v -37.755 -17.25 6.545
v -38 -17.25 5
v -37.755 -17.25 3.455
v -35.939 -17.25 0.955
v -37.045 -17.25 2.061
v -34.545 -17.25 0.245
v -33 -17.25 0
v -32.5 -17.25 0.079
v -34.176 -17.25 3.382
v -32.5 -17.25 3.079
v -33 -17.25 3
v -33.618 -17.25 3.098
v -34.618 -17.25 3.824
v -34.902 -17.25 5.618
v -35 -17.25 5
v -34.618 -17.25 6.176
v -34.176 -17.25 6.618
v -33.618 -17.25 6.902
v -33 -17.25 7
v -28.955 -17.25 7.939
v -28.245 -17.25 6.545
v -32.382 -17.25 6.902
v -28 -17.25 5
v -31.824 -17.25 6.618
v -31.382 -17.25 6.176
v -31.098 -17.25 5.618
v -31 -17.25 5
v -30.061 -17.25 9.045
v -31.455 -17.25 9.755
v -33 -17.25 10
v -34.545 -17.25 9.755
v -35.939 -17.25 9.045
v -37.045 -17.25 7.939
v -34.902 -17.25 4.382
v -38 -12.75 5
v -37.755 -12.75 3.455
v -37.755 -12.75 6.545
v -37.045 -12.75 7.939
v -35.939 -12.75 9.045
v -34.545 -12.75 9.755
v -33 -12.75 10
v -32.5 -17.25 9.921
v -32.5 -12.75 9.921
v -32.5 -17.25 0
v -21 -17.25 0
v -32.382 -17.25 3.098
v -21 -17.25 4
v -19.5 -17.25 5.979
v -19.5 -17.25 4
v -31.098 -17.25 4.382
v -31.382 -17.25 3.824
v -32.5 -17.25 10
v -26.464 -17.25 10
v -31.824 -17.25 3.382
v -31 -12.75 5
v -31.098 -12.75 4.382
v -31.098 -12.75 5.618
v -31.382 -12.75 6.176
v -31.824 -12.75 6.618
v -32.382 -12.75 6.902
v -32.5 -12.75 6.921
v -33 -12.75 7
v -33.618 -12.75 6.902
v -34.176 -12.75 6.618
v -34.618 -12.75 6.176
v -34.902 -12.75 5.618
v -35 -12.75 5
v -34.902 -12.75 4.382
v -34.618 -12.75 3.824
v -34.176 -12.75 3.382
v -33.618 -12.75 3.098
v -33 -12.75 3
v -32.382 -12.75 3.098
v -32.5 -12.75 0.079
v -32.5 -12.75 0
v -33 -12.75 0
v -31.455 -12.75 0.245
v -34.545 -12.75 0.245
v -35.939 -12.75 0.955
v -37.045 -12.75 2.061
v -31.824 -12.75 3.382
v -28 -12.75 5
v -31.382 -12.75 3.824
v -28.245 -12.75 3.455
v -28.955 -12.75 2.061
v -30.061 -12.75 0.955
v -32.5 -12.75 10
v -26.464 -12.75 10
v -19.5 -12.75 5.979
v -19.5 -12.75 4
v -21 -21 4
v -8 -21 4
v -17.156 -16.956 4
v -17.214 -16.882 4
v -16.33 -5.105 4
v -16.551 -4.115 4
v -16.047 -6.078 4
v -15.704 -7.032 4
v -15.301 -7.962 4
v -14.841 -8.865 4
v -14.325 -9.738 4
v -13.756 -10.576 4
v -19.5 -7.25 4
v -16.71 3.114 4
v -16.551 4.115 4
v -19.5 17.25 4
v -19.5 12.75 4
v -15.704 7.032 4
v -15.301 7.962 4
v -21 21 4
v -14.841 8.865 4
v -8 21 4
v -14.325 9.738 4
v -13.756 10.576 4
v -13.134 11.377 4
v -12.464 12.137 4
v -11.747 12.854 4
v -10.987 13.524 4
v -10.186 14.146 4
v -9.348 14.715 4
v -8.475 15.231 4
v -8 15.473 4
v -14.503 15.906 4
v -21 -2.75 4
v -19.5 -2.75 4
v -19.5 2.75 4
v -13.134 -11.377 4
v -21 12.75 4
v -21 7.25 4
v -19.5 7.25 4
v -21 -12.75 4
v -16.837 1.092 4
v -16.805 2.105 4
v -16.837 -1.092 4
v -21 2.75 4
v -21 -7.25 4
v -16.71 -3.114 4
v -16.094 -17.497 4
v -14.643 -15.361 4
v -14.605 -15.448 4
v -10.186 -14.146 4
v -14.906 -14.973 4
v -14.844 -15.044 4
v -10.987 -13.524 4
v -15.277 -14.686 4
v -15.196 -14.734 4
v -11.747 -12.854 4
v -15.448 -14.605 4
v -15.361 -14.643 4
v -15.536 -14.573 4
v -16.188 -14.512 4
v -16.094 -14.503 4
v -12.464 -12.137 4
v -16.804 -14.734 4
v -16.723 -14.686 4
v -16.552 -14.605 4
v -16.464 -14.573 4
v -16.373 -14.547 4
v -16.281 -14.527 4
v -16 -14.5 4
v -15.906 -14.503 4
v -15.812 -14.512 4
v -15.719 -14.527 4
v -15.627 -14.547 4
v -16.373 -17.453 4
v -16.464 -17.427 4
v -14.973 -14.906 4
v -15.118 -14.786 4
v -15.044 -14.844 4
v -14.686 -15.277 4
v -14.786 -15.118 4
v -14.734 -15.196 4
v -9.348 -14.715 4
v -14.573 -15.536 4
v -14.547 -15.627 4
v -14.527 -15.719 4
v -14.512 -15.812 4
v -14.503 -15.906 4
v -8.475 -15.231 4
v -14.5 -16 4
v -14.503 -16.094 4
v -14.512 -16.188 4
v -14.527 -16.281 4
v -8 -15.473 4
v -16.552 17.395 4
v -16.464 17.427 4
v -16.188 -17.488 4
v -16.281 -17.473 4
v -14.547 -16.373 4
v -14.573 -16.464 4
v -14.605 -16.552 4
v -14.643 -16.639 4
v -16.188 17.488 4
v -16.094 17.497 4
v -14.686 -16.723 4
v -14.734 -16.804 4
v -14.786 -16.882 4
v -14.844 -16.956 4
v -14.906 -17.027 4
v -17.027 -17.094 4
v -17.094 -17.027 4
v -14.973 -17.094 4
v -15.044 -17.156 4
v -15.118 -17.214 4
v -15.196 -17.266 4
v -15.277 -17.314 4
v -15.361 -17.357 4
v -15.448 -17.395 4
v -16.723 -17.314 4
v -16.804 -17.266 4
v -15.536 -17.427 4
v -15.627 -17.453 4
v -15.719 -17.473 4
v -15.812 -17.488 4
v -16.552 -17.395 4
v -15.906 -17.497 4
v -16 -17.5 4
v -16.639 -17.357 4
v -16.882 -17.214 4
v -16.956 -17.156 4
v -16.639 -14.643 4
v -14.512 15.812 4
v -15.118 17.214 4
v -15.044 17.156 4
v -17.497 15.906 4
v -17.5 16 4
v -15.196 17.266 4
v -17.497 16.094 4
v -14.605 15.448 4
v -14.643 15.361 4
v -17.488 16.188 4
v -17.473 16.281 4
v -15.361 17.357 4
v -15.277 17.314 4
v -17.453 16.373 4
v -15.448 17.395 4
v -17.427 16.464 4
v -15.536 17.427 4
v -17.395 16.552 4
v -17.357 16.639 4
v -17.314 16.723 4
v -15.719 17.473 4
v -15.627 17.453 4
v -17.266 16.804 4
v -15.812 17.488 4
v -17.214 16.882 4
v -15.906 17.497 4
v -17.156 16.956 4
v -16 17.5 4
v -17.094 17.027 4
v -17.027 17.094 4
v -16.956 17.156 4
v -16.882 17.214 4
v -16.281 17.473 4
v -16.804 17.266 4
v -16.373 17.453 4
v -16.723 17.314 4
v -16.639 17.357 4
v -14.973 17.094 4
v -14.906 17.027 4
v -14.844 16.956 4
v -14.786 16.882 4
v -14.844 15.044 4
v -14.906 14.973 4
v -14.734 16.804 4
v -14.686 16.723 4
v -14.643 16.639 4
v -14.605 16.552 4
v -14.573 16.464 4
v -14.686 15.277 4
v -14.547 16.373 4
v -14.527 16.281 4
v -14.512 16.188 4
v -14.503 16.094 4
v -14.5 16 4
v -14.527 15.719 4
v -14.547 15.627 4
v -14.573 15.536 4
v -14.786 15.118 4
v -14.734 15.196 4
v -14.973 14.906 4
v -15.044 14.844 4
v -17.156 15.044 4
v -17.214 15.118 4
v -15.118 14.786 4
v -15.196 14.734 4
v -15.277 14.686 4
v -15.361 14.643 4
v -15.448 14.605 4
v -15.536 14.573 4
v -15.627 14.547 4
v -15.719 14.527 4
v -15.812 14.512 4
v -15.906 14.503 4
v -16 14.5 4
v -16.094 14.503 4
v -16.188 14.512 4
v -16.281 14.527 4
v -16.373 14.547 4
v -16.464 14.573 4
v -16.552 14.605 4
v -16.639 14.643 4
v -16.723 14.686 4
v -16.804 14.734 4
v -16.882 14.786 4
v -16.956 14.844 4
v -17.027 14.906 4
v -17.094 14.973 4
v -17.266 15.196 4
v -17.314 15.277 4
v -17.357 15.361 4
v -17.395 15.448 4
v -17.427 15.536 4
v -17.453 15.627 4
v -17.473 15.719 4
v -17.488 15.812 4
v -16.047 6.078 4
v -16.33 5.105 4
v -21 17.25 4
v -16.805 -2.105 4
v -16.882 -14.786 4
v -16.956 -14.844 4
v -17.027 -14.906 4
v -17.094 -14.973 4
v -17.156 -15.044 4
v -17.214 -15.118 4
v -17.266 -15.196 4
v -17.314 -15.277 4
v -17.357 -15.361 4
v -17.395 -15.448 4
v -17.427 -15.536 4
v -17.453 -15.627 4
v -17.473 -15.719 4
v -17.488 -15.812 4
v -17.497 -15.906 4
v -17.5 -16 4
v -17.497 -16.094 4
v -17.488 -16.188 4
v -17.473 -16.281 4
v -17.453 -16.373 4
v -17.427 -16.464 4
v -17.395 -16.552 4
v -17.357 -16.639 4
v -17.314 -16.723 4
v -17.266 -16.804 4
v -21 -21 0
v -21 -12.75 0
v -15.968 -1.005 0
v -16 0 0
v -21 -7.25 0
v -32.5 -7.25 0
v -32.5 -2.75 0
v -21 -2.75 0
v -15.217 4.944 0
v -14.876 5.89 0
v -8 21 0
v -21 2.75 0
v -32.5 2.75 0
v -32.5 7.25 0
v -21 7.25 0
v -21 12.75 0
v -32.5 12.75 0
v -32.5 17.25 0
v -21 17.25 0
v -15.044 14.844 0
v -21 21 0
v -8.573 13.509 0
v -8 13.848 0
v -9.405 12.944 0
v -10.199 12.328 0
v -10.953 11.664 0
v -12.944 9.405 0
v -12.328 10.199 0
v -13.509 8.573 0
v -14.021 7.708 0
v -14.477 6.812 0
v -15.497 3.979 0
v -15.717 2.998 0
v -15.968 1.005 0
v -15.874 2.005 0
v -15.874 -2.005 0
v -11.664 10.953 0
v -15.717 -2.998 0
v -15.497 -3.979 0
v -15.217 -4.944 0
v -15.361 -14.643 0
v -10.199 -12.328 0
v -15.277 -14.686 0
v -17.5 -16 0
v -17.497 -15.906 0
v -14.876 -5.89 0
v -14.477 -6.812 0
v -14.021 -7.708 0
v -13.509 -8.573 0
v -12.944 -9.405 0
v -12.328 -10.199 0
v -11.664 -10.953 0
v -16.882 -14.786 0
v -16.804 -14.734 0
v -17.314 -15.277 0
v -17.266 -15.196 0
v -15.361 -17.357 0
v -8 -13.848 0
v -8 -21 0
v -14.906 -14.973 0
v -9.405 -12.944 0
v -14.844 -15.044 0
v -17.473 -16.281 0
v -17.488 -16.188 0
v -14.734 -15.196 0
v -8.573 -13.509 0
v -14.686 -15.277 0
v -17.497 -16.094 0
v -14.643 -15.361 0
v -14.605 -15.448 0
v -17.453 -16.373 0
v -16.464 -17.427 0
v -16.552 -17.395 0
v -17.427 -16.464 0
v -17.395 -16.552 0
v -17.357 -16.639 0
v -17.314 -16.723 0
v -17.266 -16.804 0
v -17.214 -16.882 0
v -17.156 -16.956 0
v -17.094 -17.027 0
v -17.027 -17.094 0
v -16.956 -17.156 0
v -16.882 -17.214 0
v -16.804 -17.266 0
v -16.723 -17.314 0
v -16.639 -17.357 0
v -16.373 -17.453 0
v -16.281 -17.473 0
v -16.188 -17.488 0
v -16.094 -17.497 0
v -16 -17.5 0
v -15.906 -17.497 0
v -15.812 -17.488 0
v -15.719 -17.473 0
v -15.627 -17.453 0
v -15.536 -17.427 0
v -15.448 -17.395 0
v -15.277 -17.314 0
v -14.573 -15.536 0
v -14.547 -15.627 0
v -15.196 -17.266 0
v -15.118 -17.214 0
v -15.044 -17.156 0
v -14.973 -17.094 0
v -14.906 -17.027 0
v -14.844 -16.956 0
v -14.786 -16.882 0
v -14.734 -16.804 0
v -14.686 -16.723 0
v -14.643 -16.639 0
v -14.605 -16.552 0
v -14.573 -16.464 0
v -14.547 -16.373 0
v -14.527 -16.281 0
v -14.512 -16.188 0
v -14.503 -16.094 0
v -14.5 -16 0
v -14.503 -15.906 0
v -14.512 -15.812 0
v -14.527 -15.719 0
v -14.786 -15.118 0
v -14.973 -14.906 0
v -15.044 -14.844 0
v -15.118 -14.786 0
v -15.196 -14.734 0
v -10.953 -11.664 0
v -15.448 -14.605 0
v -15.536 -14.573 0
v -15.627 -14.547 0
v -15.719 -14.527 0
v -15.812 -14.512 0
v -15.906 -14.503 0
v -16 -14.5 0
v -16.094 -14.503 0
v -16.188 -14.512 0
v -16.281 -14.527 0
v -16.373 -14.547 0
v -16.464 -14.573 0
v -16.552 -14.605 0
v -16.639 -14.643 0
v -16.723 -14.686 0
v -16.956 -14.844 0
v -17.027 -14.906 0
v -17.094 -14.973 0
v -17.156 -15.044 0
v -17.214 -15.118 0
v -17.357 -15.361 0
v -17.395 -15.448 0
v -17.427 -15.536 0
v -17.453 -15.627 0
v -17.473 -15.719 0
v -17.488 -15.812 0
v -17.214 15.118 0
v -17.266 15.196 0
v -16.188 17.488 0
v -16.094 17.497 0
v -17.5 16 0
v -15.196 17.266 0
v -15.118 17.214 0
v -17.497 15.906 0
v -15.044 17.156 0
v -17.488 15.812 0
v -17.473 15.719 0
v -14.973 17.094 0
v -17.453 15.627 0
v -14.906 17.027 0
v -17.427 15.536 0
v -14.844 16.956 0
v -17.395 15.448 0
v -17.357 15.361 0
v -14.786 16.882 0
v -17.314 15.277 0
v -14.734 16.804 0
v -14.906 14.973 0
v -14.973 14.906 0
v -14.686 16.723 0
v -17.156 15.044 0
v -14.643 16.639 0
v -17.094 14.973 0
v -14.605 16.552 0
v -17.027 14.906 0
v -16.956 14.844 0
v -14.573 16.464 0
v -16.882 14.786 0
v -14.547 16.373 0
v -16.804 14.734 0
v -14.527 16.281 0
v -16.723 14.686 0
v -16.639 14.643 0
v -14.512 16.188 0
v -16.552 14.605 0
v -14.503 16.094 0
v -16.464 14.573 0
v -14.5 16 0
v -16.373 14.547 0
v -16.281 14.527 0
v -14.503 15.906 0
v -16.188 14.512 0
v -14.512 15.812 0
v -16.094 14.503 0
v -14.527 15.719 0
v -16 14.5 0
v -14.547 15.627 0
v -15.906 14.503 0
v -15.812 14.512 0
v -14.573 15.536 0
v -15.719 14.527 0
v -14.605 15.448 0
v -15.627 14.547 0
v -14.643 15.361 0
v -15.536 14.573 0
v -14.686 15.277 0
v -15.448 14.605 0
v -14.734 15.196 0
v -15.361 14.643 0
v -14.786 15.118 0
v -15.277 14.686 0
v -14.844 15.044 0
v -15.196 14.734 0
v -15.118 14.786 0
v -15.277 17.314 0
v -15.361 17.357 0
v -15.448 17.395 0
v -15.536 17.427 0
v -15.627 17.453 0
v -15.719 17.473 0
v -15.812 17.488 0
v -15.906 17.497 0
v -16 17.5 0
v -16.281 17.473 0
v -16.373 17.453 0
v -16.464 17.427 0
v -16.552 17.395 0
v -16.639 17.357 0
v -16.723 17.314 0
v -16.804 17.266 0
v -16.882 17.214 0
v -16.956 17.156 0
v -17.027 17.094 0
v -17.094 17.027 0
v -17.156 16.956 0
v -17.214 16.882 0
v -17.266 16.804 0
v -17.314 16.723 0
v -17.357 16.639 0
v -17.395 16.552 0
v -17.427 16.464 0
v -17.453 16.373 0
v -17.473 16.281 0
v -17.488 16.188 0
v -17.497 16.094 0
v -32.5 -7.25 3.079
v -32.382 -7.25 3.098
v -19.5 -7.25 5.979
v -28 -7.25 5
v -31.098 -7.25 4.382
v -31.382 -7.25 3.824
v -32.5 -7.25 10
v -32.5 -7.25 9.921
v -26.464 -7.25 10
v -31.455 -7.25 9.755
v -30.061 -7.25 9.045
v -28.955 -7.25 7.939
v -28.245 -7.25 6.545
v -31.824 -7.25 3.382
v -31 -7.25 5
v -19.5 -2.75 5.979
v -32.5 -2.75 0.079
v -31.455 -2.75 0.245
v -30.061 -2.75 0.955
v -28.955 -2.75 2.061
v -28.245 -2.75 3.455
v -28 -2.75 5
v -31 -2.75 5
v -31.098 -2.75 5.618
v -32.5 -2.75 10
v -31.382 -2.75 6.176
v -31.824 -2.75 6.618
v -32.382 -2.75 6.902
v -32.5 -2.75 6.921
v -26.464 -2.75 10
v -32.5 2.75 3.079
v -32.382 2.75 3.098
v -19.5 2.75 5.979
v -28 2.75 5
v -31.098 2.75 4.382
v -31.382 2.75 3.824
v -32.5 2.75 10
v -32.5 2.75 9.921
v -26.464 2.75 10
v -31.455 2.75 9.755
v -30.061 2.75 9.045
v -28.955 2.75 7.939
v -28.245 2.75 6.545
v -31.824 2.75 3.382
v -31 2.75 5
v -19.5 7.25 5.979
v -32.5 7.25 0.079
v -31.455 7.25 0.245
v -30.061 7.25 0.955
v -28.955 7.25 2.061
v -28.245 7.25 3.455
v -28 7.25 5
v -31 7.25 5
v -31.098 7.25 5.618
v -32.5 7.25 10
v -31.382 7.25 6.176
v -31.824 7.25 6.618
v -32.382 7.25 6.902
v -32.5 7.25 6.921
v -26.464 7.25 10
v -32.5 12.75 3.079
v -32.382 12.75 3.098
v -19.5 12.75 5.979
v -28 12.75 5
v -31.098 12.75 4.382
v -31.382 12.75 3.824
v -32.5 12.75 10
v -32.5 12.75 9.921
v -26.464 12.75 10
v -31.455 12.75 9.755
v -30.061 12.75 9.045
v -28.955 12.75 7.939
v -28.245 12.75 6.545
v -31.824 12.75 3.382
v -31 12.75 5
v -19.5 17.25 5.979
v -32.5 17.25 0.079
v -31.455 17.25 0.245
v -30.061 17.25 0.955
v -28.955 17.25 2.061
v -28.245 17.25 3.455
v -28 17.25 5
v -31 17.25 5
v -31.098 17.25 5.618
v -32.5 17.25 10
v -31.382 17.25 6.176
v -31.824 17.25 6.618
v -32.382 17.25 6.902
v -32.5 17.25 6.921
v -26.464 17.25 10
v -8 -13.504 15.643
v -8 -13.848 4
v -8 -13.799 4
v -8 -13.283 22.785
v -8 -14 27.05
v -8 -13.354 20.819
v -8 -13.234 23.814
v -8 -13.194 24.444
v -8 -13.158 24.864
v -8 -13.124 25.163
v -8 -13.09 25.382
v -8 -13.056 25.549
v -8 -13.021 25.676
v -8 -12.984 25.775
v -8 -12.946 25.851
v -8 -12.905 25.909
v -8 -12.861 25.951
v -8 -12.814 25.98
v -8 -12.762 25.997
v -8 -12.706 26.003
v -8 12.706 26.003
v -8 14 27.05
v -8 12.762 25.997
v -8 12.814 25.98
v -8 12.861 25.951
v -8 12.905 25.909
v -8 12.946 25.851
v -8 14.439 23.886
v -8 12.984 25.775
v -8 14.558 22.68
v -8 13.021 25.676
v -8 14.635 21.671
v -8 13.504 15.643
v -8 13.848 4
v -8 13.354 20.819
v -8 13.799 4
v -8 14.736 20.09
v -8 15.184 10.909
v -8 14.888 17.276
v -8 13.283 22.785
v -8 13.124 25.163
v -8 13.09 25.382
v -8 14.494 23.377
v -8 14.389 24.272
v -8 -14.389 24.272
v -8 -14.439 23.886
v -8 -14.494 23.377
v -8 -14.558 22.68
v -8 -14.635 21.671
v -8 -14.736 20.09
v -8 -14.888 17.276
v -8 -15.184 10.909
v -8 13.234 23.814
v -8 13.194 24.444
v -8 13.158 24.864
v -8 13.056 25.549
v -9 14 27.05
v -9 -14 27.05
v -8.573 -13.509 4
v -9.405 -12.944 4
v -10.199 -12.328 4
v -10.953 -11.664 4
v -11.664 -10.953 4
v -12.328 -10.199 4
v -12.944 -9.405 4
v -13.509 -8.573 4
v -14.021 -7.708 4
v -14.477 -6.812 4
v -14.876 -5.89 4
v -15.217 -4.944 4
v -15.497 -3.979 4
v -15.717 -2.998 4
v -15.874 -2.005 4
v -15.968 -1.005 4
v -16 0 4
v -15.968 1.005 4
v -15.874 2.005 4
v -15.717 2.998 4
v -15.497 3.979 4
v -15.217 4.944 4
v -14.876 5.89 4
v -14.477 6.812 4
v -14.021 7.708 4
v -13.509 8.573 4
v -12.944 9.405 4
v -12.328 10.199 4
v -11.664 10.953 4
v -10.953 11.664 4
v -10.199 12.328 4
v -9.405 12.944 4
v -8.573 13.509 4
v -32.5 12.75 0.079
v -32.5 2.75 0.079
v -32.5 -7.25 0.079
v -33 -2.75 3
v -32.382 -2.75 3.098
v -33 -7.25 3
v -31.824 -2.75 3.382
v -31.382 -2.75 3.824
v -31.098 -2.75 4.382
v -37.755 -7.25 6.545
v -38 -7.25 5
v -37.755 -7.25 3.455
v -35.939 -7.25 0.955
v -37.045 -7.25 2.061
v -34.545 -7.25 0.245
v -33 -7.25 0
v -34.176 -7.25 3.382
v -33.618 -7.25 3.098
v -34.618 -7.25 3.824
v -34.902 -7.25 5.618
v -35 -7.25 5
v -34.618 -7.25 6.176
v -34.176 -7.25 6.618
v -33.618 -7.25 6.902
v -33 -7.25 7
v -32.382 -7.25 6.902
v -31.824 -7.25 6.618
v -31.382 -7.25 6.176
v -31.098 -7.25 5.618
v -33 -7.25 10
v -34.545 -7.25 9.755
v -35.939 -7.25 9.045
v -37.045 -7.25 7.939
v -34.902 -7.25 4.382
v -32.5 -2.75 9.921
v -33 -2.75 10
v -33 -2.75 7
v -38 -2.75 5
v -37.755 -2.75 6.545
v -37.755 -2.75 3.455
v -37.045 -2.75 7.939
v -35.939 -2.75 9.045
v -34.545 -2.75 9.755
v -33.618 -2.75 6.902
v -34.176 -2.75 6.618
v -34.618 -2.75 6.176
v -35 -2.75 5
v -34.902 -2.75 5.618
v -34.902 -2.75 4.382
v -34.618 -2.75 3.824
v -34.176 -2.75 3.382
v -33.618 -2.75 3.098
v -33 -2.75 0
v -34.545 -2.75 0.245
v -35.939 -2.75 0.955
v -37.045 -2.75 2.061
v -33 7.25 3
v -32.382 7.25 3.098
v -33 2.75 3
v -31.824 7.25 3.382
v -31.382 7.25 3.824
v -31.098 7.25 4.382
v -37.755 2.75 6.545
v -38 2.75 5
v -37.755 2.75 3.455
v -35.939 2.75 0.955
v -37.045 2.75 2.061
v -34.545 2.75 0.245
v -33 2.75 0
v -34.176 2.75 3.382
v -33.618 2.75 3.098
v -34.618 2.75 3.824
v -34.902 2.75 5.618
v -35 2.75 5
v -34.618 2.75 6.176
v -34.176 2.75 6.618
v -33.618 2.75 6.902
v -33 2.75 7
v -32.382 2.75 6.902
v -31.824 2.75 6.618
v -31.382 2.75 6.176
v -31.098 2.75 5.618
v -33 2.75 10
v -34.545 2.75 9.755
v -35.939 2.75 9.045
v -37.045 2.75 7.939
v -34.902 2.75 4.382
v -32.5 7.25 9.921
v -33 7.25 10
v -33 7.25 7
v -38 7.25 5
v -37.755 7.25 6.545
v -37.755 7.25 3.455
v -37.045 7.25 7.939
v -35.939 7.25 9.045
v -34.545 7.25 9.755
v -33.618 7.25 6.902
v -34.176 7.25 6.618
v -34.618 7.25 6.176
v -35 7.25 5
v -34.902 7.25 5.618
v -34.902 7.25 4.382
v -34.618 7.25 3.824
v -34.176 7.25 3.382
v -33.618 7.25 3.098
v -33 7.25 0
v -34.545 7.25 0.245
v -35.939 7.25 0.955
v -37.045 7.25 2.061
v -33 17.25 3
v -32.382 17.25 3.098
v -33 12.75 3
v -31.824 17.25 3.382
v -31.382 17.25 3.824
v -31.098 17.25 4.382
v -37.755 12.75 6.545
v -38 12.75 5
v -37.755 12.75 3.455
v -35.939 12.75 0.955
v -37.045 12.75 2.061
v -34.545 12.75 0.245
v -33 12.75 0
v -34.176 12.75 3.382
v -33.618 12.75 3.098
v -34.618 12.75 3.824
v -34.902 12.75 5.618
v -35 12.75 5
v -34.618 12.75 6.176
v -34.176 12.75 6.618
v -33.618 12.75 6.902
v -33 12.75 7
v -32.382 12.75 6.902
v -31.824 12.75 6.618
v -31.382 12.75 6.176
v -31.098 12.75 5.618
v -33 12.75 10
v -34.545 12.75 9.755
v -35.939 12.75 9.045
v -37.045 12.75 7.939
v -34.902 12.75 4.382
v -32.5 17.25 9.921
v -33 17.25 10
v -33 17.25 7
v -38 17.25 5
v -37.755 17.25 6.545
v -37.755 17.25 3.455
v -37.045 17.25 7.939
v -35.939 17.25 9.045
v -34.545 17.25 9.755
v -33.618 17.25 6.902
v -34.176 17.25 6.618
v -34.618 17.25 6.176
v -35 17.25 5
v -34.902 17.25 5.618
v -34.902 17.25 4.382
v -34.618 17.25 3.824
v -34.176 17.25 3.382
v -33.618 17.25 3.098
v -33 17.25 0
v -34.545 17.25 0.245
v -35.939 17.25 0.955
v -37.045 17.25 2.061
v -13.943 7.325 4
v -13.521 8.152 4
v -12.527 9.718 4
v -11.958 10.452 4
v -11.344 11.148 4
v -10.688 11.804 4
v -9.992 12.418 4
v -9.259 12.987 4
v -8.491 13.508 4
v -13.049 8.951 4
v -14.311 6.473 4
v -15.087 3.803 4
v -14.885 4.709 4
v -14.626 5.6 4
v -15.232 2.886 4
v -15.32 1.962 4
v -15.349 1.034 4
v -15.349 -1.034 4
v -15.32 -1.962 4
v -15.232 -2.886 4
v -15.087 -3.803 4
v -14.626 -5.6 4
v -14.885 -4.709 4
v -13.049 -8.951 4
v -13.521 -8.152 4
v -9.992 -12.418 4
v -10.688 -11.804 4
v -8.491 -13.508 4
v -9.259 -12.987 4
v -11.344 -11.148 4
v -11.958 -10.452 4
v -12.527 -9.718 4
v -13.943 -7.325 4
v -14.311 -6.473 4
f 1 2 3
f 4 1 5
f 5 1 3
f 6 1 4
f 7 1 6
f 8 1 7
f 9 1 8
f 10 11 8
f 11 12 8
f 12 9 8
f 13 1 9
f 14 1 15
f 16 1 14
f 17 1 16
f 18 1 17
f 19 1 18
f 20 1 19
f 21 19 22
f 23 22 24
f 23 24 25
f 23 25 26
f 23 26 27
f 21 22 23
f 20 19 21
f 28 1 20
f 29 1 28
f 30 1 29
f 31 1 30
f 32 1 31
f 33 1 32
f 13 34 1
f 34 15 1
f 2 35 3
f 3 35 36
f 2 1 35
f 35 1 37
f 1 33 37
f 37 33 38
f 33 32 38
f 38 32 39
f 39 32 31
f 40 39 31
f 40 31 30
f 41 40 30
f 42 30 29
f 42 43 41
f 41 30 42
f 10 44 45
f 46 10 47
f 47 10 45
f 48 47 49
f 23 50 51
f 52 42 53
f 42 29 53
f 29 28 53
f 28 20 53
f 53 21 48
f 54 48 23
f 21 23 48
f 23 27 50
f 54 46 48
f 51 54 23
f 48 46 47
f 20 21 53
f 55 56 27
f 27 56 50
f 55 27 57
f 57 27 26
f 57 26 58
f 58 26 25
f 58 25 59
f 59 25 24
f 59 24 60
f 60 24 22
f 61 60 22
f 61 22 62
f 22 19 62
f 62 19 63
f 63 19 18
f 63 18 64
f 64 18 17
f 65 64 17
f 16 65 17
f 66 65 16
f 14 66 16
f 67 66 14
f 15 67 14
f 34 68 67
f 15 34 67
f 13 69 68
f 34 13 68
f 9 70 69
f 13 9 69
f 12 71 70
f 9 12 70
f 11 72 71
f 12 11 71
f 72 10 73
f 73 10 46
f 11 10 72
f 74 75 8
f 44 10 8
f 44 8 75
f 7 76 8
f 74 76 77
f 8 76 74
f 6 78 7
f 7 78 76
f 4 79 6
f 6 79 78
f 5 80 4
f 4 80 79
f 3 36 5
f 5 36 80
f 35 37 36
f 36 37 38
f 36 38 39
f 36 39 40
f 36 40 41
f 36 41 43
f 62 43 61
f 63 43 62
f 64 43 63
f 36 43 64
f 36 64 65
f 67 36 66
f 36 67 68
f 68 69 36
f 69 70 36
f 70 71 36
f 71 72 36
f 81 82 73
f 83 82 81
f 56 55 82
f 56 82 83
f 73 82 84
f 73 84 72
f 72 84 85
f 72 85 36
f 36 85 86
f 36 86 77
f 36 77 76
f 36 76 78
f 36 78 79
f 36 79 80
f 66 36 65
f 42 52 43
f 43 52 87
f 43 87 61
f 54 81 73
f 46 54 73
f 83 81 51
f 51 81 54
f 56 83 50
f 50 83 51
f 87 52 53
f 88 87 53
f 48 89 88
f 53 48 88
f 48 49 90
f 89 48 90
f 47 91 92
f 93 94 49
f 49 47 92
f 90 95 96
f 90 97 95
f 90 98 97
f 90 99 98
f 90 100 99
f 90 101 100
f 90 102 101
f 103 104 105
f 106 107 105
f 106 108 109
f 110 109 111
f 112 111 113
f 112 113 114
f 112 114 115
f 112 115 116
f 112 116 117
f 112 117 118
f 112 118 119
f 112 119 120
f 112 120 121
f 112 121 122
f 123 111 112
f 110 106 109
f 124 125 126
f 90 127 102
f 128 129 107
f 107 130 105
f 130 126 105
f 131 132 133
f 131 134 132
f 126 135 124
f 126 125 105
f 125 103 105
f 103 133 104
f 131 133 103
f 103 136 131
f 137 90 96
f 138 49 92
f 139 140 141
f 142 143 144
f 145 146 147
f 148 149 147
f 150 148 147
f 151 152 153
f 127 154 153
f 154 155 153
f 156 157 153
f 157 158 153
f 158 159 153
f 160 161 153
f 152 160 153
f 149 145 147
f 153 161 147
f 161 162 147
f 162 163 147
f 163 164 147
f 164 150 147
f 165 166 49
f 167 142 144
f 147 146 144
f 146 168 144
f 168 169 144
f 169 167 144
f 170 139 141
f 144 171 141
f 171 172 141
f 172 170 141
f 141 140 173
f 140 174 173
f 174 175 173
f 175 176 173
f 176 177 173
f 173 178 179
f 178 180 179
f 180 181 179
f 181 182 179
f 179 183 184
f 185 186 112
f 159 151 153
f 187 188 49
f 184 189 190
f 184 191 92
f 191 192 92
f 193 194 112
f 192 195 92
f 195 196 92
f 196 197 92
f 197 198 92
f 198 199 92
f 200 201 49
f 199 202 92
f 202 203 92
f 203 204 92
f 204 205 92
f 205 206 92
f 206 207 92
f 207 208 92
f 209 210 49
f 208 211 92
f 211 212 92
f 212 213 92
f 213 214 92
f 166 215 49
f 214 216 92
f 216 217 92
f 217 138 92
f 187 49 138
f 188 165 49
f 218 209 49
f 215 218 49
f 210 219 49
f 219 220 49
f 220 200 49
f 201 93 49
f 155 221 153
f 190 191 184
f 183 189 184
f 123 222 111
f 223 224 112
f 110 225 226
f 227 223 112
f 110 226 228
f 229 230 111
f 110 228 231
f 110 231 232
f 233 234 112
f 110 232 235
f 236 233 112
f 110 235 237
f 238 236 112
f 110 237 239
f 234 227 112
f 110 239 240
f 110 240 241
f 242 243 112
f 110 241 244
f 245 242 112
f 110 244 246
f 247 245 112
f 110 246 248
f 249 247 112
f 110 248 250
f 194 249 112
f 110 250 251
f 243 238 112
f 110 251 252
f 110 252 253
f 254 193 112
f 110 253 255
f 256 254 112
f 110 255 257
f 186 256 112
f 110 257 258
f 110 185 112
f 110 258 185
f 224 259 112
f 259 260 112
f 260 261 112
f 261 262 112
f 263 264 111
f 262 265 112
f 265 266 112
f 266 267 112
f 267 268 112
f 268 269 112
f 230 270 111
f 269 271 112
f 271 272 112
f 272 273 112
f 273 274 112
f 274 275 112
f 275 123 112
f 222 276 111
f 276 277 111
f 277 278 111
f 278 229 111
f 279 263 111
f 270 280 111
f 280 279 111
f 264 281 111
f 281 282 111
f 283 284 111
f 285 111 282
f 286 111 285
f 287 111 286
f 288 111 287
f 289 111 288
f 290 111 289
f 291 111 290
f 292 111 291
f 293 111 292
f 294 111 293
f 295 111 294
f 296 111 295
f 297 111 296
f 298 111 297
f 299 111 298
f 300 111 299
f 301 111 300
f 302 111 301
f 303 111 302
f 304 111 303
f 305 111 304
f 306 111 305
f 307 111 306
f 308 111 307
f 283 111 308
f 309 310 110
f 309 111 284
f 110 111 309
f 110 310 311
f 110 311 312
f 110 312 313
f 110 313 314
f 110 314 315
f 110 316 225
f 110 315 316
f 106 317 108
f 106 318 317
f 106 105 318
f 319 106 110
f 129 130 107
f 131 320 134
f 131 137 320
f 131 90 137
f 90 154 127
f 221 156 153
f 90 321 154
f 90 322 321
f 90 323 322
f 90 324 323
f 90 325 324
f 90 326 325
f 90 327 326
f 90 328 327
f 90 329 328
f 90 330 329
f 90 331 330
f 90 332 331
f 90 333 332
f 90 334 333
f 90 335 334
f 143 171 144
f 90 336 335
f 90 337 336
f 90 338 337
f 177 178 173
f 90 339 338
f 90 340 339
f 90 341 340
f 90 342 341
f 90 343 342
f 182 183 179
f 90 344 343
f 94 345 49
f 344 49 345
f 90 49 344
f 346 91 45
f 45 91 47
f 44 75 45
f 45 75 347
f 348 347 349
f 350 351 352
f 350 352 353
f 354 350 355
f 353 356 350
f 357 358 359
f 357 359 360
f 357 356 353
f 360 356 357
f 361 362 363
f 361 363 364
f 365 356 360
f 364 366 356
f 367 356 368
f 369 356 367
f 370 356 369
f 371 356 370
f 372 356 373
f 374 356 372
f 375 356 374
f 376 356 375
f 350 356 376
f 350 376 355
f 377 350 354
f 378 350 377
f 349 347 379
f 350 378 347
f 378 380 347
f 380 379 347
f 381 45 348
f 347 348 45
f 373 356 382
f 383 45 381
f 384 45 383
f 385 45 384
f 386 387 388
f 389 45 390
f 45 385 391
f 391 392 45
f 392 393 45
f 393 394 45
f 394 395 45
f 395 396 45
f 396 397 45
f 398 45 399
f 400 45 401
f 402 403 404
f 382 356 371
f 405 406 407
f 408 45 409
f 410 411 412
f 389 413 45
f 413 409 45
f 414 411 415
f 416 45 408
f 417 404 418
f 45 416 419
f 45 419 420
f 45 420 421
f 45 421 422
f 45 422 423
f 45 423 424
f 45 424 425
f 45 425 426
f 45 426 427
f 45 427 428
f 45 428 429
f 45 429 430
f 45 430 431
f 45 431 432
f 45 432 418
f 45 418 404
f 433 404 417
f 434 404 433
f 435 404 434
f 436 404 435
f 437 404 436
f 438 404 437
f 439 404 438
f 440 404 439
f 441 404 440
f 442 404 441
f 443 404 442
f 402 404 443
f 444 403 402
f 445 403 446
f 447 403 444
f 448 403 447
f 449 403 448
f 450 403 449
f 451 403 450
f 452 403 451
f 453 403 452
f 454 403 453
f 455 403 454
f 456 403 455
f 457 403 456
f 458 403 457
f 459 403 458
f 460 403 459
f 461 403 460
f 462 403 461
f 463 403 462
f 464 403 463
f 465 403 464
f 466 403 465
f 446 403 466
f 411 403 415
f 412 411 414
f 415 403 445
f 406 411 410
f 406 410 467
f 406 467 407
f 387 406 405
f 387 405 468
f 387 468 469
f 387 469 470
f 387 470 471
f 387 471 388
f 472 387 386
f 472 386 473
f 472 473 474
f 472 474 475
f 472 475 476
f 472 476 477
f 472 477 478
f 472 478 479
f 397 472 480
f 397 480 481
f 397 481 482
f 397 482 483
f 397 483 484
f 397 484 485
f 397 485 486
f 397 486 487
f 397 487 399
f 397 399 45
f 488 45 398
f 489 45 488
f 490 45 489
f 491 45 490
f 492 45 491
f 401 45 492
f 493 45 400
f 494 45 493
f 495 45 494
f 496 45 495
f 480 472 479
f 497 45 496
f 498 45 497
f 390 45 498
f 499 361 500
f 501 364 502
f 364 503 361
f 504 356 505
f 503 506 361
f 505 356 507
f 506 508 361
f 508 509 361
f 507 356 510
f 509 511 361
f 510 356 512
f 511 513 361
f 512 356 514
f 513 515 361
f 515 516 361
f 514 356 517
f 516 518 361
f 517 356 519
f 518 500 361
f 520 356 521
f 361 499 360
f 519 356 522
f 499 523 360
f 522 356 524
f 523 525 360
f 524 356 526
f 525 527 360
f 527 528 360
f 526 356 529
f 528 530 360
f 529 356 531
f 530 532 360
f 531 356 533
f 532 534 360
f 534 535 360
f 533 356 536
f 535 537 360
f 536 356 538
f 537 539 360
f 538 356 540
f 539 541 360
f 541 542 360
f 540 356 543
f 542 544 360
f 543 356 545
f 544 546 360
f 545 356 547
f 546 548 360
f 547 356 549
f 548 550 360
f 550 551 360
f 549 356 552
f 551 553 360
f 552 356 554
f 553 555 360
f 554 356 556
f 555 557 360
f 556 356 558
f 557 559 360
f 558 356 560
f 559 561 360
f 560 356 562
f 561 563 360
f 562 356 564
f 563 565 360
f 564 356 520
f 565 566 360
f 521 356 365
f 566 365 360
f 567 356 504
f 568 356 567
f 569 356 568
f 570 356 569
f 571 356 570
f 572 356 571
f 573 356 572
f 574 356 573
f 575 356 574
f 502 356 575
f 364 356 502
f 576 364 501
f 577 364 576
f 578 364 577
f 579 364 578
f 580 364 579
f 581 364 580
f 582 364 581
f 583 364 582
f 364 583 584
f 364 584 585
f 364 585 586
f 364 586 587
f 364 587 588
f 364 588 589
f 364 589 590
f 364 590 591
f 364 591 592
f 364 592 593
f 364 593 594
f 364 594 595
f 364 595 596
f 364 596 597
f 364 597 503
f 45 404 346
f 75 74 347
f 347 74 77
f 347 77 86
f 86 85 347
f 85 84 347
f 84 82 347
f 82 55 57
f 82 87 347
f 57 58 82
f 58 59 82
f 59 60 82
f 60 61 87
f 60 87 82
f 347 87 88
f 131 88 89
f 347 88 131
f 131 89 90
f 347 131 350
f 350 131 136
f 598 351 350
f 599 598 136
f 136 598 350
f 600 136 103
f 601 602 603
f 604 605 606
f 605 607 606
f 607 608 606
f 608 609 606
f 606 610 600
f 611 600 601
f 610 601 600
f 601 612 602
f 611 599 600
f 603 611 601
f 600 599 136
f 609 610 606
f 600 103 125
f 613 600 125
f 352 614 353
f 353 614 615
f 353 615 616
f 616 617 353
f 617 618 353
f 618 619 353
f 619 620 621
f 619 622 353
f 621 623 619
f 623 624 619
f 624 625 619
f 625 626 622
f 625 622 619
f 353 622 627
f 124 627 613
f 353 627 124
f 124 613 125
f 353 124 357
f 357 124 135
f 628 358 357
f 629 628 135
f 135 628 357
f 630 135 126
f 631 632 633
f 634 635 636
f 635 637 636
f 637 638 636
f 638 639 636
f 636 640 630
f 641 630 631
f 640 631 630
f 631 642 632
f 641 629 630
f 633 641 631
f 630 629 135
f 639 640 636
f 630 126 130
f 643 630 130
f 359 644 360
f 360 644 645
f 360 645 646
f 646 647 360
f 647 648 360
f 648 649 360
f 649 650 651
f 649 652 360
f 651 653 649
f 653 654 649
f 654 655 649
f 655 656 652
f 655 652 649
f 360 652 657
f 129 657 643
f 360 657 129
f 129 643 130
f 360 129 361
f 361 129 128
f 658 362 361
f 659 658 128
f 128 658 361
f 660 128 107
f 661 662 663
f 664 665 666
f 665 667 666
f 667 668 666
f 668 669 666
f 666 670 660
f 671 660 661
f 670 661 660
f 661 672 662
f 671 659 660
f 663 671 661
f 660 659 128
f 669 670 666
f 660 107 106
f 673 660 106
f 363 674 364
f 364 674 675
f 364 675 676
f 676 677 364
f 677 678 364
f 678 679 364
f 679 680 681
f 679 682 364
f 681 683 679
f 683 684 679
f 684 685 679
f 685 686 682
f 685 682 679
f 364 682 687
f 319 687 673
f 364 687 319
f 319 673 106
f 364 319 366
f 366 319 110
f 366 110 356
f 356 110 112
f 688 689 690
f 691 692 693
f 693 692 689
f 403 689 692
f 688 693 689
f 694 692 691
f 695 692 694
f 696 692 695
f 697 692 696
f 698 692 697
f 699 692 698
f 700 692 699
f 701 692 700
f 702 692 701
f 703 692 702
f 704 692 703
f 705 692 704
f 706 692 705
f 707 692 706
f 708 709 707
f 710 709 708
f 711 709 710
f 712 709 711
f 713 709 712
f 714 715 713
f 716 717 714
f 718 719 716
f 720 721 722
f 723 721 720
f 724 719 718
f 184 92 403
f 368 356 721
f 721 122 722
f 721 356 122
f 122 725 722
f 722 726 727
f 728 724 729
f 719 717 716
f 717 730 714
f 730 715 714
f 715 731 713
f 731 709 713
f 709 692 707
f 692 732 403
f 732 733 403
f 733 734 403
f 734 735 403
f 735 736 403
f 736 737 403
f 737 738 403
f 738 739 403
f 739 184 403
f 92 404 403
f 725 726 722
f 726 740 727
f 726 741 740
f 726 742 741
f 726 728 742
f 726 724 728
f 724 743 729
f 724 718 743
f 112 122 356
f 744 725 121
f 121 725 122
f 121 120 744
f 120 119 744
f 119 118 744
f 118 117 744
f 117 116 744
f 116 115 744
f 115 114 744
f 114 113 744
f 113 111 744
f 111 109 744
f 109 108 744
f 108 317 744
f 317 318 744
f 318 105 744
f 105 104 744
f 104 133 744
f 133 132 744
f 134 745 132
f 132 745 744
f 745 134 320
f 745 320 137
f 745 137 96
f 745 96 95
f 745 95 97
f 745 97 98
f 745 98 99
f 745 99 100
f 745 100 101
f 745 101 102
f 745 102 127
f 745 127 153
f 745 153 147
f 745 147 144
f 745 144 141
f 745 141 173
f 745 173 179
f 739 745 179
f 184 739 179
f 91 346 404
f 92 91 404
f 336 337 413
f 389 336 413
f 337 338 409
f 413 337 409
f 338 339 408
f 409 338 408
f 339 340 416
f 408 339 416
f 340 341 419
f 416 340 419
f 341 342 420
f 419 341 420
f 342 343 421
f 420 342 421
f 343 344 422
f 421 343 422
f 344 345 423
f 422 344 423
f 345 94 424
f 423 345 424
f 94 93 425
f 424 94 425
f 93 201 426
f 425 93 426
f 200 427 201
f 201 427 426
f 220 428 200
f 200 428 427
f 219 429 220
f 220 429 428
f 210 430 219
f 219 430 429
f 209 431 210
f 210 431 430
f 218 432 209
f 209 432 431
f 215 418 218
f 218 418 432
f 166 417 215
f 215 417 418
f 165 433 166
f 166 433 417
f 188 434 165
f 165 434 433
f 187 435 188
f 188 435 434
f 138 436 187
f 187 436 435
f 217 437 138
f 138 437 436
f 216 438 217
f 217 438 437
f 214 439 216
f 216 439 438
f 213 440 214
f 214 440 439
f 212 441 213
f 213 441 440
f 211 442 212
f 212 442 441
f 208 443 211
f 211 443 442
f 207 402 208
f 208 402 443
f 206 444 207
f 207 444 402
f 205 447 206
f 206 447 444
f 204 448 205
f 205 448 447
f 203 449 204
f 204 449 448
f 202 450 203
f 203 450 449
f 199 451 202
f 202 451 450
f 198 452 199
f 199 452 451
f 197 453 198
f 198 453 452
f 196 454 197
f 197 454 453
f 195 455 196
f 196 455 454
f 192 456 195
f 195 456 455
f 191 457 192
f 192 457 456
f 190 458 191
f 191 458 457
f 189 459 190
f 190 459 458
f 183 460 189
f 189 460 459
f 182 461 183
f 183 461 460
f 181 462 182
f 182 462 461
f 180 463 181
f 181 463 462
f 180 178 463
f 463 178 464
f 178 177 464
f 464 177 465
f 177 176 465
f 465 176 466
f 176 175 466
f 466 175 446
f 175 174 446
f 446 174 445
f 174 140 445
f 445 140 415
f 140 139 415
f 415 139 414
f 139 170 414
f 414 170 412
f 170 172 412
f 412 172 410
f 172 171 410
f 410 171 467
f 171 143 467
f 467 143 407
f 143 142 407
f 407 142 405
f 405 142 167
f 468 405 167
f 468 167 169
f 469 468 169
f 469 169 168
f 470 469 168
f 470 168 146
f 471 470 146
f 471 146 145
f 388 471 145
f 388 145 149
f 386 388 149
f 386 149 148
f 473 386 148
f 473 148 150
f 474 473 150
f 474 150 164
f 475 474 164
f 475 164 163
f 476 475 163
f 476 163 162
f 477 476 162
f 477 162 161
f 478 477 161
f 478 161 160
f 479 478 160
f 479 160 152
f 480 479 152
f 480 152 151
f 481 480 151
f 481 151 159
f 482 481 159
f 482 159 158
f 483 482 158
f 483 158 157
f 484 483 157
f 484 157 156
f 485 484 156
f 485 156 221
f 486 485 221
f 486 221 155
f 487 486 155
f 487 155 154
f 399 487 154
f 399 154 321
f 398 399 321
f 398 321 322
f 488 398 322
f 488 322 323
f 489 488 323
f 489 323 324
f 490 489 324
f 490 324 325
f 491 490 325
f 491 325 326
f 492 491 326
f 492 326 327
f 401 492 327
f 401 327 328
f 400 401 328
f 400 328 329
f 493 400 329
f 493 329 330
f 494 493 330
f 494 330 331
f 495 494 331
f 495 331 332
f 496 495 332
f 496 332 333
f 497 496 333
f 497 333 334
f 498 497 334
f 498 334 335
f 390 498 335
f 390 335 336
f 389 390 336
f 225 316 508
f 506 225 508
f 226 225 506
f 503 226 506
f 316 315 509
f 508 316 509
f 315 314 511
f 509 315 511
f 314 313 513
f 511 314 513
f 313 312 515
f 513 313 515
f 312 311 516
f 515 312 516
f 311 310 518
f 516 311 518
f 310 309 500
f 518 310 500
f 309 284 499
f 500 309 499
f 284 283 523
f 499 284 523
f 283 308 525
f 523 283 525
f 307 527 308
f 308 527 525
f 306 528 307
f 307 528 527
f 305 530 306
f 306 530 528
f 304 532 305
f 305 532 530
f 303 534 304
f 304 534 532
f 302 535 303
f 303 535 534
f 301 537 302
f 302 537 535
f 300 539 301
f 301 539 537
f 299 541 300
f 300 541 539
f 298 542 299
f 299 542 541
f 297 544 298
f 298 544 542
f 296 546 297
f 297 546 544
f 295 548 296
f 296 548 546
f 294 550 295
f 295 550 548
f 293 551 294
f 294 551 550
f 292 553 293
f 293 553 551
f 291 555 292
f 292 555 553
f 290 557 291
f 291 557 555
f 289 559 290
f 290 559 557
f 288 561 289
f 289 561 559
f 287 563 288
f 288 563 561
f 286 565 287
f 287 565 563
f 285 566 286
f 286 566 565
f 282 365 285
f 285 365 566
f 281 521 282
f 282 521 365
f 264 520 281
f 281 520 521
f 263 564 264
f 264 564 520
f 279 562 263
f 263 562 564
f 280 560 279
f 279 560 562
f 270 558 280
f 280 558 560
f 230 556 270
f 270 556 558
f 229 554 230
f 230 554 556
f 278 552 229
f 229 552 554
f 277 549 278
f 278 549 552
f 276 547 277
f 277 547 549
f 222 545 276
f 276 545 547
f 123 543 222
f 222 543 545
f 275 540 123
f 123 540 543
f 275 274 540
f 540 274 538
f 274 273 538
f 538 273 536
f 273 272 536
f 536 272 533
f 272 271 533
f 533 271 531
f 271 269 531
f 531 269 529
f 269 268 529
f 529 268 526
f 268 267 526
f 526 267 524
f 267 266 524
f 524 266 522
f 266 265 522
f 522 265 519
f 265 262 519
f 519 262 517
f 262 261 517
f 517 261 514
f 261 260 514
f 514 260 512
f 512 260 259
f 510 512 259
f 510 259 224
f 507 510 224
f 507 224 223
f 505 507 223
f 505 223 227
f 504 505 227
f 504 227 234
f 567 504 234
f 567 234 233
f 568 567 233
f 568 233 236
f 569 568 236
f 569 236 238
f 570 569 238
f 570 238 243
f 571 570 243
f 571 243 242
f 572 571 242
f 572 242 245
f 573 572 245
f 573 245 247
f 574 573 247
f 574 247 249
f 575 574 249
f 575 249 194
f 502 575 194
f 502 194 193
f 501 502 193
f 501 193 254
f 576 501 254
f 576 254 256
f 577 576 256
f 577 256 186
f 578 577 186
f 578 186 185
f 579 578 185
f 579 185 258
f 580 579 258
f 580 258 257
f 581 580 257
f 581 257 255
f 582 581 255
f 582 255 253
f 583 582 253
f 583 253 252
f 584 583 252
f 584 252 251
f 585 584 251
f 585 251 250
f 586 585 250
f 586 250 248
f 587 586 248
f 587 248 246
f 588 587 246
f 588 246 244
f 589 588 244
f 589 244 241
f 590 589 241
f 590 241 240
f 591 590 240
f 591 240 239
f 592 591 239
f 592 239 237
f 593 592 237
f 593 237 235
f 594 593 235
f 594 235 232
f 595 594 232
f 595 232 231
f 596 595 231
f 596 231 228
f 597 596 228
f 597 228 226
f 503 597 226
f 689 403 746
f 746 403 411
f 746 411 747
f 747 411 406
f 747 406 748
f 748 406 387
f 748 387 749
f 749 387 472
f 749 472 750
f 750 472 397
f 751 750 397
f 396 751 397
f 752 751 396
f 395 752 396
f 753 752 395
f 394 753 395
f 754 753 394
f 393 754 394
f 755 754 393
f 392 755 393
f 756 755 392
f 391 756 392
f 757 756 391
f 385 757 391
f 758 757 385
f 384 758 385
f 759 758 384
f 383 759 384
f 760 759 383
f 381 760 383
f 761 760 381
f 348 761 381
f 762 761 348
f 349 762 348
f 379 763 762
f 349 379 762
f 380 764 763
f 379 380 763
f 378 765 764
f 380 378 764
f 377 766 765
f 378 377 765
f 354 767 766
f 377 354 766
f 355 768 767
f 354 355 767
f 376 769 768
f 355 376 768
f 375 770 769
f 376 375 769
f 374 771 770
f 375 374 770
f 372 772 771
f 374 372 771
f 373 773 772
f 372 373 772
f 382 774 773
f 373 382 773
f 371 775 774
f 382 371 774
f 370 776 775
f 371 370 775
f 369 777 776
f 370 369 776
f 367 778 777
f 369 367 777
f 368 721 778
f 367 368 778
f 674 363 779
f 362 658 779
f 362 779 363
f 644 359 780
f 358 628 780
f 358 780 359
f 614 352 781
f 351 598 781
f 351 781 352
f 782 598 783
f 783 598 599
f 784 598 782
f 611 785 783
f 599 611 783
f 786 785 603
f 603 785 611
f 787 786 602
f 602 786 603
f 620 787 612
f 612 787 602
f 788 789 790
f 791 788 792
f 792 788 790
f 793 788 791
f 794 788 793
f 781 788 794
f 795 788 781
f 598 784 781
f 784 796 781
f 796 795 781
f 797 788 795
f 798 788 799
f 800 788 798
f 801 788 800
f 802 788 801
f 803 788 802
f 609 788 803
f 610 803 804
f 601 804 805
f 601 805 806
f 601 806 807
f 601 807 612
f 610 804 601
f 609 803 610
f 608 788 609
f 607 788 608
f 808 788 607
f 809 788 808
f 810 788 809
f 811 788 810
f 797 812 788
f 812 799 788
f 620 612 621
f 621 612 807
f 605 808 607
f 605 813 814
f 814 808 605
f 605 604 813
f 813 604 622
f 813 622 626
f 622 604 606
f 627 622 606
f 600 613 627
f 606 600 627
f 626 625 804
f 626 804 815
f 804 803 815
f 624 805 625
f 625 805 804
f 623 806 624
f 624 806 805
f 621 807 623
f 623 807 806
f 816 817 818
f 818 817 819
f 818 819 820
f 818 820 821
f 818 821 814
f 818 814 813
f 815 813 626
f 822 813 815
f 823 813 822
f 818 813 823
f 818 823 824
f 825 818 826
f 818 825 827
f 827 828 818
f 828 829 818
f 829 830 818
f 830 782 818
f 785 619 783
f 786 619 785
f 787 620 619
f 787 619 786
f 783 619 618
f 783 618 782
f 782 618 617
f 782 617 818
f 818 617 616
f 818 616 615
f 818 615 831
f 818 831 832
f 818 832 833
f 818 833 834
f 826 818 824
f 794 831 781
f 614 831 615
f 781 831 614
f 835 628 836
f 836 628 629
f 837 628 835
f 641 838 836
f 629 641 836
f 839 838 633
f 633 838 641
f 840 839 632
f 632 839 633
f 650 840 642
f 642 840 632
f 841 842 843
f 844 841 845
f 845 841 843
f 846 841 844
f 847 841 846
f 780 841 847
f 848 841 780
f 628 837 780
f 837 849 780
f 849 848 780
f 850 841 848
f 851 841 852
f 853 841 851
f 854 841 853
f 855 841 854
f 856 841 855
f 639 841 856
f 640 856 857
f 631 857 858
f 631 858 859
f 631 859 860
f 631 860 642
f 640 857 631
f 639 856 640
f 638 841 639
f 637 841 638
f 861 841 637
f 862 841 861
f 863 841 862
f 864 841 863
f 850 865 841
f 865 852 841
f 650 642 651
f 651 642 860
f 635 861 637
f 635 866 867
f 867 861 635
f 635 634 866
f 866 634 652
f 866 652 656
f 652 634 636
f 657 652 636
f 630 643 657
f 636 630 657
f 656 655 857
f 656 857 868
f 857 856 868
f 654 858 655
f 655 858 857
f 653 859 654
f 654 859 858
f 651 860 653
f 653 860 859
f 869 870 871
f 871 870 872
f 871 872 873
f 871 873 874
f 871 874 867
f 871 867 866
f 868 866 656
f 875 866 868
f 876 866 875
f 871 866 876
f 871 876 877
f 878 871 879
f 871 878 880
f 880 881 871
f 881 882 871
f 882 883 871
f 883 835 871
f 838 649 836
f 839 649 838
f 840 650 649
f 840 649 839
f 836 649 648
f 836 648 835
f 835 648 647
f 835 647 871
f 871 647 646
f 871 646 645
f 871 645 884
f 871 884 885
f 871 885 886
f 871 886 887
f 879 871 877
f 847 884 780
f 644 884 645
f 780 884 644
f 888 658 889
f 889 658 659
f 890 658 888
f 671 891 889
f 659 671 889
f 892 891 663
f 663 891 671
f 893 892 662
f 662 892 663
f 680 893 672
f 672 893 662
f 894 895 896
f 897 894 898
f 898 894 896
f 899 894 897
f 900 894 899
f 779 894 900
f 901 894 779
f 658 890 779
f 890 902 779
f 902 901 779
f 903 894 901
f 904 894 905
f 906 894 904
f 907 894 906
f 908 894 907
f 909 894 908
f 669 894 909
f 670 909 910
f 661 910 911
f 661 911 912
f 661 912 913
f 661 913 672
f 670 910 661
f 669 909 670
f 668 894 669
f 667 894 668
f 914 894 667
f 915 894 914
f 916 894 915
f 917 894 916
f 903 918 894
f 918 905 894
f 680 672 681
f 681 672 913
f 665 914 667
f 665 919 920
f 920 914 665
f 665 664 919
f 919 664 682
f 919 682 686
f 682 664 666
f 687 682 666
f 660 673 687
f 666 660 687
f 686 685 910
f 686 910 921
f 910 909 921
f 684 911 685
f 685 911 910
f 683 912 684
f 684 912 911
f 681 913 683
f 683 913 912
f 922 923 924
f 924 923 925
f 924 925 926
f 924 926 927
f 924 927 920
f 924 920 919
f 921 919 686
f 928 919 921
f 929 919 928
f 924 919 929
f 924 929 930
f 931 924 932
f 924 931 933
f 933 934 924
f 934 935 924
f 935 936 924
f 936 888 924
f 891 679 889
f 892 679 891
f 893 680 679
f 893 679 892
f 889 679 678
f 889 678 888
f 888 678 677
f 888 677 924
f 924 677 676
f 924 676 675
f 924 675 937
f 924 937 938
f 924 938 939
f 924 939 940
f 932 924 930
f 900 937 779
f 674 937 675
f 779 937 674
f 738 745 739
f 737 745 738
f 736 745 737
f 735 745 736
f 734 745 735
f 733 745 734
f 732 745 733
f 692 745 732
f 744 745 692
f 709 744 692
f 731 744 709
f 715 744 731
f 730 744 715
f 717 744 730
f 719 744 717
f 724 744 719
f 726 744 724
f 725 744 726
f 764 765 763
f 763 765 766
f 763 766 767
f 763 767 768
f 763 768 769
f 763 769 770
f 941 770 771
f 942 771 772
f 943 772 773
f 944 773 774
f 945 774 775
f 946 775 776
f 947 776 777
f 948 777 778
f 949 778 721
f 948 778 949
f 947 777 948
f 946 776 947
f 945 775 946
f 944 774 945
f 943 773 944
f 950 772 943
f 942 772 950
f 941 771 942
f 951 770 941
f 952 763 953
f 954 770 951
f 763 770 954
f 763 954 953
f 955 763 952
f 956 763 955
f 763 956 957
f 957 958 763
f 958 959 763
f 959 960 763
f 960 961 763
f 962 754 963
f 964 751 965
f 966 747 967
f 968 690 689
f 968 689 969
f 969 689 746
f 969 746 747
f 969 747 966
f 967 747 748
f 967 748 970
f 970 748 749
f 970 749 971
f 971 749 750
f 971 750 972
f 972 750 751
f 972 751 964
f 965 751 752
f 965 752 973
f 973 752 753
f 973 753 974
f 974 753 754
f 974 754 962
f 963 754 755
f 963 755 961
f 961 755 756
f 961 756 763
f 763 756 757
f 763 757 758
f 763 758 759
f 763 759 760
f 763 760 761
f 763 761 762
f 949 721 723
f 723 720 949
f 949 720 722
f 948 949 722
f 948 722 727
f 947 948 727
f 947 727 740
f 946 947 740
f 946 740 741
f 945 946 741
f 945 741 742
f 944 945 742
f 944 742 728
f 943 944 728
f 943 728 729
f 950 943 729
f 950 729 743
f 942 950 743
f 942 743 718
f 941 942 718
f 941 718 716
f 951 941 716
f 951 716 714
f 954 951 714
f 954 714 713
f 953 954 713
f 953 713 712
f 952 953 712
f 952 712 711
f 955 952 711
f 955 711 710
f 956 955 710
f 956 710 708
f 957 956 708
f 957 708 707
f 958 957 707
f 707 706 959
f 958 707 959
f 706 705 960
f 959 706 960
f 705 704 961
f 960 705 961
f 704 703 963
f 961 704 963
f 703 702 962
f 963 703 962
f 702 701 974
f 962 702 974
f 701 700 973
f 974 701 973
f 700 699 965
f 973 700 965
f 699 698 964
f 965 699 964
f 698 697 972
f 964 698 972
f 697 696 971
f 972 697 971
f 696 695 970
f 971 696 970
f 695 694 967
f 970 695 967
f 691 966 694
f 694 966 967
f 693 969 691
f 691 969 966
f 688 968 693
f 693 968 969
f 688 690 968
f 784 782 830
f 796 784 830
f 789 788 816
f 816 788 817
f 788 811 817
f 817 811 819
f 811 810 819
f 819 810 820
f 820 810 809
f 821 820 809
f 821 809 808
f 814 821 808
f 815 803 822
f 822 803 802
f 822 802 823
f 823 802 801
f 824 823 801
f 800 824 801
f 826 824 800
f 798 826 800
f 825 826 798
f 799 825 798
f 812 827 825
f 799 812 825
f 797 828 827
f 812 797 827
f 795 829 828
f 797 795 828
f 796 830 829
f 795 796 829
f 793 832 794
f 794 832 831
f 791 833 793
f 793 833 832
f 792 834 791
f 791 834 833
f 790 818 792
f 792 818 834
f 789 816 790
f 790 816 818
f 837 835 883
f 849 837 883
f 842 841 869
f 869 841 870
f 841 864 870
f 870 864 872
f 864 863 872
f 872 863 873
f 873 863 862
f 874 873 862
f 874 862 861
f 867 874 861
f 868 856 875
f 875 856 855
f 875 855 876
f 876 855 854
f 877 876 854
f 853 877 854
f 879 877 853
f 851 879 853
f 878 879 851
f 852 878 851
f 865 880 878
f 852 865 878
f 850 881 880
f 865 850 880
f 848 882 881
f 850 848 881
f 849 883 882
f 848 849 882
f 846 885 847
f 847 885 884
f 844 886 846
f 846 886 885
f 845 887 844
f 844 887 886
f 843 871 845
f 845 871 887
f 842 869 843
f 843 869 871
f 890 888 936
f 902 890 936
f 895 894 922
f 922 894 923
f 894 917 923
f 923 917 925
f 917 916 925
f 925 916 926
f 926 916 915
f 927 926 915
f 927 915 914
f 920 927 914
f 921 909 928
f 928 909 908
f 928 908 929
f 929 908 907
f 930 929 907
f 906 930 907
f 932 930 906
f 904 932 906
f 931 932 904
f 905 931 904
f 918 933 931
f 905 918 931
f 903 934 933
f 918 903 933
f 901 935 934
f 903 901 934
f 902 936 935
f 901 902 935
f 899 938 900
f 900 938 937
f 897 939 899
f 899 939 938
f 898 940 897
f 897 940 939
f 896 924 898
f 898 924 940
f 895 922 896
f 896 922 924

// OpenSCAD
// fan screw
S_d = 3;

// fan
F_size = 40;
F_d = 32;
F_hs = 32; // hole spacing

// mount
M_height = 4;

// duct
D_thickness = 1.5;
D_width = 15 + D_thickness*2;
D_deep = 25 + D_thickness*2;
D_length = 25;
D_shift = 10; // modify if needed to direct flow more/less to the upper part of the hotend
D_translate_X = 0;
D_translate_Y = 0;

// set to true only have the top part of the duct and mount with 2 screws
twoScrewMount = true;

// mount
module mount()
{
  difference() {
	union(){
    translate([0,0,0]) cube([F_size+2, F_size+2, M_height], center=true);
	 duct();
	}
    translate([F_hs/2, F_hs/2, 0]) color("red") screw_hole();
    translate([F_hs/2, -F_hs/2, 0]) color("red") screw_hole();
    translate([-F_hs/2, -F_hs/2, 0]) color("red") screw_hole();
    translate([-F_hs/2, F_hs/2, 0]) color("red") screw_hole();
    translate([0,0,0]) cylinder(h=M_height, r=F_d/2, center = true, $fn=100);
    if (twoScrewMount == true) {
    	translate([15,0,0]) cube([F_size+6, F_size+6, (M_height+D_length)*2], center=true);
    }
   }
}

// duct
module duct()
{
	translate([0,0,0]) rotate ([0,0, 180])  difference() {
    hull() 
{
      cylinder(h=0.1, r=F_size/2 - 2.5, center = true, $fn=100);
      translate([D_translate_X, D_translate_Y/2, D_length]) 
        cube([D_width, D_deep, 0.1], center=true);
    }
    hull() {
      cylinder(h=0.1, r=F_d/2, center = true, $fn=100);
       translate([D_translate_X, D_translate_Y/2, D_length])
       cube([D_width-D_thickness*2, F_size-D_shift-D_thickness*2, 1], center=true);
    }
}
}

// screw 
module screw_hole()
{
  cylinder(h=20, r=S_d/2, center = true, $fn=100);
}

module fan_mounts(){
for ( i = [0 : 3] )
{
difference(){
union(){
translate([0, 10*i,0]) rotate([90,0,0]) cylinder(r=5, h = 4.5, $fn=20, center= true);
difference()
{
translate([-7, 10*i,0]) cube([13,4.5,10], center=true);
translate([-20, 10*i,3]) rotate([0,-30,0]) cube([30,6,10], center=true);
}
}
translate([0, 10*i,0]) rotate([90,0,0]) cylinder(r=2, h = 7, $fn=20,center= true);
}
}
}

translate([0,0,M_height/2]) mount();
translate([-33,15,5]) rotate([0,0,180]) fan_mounts();
